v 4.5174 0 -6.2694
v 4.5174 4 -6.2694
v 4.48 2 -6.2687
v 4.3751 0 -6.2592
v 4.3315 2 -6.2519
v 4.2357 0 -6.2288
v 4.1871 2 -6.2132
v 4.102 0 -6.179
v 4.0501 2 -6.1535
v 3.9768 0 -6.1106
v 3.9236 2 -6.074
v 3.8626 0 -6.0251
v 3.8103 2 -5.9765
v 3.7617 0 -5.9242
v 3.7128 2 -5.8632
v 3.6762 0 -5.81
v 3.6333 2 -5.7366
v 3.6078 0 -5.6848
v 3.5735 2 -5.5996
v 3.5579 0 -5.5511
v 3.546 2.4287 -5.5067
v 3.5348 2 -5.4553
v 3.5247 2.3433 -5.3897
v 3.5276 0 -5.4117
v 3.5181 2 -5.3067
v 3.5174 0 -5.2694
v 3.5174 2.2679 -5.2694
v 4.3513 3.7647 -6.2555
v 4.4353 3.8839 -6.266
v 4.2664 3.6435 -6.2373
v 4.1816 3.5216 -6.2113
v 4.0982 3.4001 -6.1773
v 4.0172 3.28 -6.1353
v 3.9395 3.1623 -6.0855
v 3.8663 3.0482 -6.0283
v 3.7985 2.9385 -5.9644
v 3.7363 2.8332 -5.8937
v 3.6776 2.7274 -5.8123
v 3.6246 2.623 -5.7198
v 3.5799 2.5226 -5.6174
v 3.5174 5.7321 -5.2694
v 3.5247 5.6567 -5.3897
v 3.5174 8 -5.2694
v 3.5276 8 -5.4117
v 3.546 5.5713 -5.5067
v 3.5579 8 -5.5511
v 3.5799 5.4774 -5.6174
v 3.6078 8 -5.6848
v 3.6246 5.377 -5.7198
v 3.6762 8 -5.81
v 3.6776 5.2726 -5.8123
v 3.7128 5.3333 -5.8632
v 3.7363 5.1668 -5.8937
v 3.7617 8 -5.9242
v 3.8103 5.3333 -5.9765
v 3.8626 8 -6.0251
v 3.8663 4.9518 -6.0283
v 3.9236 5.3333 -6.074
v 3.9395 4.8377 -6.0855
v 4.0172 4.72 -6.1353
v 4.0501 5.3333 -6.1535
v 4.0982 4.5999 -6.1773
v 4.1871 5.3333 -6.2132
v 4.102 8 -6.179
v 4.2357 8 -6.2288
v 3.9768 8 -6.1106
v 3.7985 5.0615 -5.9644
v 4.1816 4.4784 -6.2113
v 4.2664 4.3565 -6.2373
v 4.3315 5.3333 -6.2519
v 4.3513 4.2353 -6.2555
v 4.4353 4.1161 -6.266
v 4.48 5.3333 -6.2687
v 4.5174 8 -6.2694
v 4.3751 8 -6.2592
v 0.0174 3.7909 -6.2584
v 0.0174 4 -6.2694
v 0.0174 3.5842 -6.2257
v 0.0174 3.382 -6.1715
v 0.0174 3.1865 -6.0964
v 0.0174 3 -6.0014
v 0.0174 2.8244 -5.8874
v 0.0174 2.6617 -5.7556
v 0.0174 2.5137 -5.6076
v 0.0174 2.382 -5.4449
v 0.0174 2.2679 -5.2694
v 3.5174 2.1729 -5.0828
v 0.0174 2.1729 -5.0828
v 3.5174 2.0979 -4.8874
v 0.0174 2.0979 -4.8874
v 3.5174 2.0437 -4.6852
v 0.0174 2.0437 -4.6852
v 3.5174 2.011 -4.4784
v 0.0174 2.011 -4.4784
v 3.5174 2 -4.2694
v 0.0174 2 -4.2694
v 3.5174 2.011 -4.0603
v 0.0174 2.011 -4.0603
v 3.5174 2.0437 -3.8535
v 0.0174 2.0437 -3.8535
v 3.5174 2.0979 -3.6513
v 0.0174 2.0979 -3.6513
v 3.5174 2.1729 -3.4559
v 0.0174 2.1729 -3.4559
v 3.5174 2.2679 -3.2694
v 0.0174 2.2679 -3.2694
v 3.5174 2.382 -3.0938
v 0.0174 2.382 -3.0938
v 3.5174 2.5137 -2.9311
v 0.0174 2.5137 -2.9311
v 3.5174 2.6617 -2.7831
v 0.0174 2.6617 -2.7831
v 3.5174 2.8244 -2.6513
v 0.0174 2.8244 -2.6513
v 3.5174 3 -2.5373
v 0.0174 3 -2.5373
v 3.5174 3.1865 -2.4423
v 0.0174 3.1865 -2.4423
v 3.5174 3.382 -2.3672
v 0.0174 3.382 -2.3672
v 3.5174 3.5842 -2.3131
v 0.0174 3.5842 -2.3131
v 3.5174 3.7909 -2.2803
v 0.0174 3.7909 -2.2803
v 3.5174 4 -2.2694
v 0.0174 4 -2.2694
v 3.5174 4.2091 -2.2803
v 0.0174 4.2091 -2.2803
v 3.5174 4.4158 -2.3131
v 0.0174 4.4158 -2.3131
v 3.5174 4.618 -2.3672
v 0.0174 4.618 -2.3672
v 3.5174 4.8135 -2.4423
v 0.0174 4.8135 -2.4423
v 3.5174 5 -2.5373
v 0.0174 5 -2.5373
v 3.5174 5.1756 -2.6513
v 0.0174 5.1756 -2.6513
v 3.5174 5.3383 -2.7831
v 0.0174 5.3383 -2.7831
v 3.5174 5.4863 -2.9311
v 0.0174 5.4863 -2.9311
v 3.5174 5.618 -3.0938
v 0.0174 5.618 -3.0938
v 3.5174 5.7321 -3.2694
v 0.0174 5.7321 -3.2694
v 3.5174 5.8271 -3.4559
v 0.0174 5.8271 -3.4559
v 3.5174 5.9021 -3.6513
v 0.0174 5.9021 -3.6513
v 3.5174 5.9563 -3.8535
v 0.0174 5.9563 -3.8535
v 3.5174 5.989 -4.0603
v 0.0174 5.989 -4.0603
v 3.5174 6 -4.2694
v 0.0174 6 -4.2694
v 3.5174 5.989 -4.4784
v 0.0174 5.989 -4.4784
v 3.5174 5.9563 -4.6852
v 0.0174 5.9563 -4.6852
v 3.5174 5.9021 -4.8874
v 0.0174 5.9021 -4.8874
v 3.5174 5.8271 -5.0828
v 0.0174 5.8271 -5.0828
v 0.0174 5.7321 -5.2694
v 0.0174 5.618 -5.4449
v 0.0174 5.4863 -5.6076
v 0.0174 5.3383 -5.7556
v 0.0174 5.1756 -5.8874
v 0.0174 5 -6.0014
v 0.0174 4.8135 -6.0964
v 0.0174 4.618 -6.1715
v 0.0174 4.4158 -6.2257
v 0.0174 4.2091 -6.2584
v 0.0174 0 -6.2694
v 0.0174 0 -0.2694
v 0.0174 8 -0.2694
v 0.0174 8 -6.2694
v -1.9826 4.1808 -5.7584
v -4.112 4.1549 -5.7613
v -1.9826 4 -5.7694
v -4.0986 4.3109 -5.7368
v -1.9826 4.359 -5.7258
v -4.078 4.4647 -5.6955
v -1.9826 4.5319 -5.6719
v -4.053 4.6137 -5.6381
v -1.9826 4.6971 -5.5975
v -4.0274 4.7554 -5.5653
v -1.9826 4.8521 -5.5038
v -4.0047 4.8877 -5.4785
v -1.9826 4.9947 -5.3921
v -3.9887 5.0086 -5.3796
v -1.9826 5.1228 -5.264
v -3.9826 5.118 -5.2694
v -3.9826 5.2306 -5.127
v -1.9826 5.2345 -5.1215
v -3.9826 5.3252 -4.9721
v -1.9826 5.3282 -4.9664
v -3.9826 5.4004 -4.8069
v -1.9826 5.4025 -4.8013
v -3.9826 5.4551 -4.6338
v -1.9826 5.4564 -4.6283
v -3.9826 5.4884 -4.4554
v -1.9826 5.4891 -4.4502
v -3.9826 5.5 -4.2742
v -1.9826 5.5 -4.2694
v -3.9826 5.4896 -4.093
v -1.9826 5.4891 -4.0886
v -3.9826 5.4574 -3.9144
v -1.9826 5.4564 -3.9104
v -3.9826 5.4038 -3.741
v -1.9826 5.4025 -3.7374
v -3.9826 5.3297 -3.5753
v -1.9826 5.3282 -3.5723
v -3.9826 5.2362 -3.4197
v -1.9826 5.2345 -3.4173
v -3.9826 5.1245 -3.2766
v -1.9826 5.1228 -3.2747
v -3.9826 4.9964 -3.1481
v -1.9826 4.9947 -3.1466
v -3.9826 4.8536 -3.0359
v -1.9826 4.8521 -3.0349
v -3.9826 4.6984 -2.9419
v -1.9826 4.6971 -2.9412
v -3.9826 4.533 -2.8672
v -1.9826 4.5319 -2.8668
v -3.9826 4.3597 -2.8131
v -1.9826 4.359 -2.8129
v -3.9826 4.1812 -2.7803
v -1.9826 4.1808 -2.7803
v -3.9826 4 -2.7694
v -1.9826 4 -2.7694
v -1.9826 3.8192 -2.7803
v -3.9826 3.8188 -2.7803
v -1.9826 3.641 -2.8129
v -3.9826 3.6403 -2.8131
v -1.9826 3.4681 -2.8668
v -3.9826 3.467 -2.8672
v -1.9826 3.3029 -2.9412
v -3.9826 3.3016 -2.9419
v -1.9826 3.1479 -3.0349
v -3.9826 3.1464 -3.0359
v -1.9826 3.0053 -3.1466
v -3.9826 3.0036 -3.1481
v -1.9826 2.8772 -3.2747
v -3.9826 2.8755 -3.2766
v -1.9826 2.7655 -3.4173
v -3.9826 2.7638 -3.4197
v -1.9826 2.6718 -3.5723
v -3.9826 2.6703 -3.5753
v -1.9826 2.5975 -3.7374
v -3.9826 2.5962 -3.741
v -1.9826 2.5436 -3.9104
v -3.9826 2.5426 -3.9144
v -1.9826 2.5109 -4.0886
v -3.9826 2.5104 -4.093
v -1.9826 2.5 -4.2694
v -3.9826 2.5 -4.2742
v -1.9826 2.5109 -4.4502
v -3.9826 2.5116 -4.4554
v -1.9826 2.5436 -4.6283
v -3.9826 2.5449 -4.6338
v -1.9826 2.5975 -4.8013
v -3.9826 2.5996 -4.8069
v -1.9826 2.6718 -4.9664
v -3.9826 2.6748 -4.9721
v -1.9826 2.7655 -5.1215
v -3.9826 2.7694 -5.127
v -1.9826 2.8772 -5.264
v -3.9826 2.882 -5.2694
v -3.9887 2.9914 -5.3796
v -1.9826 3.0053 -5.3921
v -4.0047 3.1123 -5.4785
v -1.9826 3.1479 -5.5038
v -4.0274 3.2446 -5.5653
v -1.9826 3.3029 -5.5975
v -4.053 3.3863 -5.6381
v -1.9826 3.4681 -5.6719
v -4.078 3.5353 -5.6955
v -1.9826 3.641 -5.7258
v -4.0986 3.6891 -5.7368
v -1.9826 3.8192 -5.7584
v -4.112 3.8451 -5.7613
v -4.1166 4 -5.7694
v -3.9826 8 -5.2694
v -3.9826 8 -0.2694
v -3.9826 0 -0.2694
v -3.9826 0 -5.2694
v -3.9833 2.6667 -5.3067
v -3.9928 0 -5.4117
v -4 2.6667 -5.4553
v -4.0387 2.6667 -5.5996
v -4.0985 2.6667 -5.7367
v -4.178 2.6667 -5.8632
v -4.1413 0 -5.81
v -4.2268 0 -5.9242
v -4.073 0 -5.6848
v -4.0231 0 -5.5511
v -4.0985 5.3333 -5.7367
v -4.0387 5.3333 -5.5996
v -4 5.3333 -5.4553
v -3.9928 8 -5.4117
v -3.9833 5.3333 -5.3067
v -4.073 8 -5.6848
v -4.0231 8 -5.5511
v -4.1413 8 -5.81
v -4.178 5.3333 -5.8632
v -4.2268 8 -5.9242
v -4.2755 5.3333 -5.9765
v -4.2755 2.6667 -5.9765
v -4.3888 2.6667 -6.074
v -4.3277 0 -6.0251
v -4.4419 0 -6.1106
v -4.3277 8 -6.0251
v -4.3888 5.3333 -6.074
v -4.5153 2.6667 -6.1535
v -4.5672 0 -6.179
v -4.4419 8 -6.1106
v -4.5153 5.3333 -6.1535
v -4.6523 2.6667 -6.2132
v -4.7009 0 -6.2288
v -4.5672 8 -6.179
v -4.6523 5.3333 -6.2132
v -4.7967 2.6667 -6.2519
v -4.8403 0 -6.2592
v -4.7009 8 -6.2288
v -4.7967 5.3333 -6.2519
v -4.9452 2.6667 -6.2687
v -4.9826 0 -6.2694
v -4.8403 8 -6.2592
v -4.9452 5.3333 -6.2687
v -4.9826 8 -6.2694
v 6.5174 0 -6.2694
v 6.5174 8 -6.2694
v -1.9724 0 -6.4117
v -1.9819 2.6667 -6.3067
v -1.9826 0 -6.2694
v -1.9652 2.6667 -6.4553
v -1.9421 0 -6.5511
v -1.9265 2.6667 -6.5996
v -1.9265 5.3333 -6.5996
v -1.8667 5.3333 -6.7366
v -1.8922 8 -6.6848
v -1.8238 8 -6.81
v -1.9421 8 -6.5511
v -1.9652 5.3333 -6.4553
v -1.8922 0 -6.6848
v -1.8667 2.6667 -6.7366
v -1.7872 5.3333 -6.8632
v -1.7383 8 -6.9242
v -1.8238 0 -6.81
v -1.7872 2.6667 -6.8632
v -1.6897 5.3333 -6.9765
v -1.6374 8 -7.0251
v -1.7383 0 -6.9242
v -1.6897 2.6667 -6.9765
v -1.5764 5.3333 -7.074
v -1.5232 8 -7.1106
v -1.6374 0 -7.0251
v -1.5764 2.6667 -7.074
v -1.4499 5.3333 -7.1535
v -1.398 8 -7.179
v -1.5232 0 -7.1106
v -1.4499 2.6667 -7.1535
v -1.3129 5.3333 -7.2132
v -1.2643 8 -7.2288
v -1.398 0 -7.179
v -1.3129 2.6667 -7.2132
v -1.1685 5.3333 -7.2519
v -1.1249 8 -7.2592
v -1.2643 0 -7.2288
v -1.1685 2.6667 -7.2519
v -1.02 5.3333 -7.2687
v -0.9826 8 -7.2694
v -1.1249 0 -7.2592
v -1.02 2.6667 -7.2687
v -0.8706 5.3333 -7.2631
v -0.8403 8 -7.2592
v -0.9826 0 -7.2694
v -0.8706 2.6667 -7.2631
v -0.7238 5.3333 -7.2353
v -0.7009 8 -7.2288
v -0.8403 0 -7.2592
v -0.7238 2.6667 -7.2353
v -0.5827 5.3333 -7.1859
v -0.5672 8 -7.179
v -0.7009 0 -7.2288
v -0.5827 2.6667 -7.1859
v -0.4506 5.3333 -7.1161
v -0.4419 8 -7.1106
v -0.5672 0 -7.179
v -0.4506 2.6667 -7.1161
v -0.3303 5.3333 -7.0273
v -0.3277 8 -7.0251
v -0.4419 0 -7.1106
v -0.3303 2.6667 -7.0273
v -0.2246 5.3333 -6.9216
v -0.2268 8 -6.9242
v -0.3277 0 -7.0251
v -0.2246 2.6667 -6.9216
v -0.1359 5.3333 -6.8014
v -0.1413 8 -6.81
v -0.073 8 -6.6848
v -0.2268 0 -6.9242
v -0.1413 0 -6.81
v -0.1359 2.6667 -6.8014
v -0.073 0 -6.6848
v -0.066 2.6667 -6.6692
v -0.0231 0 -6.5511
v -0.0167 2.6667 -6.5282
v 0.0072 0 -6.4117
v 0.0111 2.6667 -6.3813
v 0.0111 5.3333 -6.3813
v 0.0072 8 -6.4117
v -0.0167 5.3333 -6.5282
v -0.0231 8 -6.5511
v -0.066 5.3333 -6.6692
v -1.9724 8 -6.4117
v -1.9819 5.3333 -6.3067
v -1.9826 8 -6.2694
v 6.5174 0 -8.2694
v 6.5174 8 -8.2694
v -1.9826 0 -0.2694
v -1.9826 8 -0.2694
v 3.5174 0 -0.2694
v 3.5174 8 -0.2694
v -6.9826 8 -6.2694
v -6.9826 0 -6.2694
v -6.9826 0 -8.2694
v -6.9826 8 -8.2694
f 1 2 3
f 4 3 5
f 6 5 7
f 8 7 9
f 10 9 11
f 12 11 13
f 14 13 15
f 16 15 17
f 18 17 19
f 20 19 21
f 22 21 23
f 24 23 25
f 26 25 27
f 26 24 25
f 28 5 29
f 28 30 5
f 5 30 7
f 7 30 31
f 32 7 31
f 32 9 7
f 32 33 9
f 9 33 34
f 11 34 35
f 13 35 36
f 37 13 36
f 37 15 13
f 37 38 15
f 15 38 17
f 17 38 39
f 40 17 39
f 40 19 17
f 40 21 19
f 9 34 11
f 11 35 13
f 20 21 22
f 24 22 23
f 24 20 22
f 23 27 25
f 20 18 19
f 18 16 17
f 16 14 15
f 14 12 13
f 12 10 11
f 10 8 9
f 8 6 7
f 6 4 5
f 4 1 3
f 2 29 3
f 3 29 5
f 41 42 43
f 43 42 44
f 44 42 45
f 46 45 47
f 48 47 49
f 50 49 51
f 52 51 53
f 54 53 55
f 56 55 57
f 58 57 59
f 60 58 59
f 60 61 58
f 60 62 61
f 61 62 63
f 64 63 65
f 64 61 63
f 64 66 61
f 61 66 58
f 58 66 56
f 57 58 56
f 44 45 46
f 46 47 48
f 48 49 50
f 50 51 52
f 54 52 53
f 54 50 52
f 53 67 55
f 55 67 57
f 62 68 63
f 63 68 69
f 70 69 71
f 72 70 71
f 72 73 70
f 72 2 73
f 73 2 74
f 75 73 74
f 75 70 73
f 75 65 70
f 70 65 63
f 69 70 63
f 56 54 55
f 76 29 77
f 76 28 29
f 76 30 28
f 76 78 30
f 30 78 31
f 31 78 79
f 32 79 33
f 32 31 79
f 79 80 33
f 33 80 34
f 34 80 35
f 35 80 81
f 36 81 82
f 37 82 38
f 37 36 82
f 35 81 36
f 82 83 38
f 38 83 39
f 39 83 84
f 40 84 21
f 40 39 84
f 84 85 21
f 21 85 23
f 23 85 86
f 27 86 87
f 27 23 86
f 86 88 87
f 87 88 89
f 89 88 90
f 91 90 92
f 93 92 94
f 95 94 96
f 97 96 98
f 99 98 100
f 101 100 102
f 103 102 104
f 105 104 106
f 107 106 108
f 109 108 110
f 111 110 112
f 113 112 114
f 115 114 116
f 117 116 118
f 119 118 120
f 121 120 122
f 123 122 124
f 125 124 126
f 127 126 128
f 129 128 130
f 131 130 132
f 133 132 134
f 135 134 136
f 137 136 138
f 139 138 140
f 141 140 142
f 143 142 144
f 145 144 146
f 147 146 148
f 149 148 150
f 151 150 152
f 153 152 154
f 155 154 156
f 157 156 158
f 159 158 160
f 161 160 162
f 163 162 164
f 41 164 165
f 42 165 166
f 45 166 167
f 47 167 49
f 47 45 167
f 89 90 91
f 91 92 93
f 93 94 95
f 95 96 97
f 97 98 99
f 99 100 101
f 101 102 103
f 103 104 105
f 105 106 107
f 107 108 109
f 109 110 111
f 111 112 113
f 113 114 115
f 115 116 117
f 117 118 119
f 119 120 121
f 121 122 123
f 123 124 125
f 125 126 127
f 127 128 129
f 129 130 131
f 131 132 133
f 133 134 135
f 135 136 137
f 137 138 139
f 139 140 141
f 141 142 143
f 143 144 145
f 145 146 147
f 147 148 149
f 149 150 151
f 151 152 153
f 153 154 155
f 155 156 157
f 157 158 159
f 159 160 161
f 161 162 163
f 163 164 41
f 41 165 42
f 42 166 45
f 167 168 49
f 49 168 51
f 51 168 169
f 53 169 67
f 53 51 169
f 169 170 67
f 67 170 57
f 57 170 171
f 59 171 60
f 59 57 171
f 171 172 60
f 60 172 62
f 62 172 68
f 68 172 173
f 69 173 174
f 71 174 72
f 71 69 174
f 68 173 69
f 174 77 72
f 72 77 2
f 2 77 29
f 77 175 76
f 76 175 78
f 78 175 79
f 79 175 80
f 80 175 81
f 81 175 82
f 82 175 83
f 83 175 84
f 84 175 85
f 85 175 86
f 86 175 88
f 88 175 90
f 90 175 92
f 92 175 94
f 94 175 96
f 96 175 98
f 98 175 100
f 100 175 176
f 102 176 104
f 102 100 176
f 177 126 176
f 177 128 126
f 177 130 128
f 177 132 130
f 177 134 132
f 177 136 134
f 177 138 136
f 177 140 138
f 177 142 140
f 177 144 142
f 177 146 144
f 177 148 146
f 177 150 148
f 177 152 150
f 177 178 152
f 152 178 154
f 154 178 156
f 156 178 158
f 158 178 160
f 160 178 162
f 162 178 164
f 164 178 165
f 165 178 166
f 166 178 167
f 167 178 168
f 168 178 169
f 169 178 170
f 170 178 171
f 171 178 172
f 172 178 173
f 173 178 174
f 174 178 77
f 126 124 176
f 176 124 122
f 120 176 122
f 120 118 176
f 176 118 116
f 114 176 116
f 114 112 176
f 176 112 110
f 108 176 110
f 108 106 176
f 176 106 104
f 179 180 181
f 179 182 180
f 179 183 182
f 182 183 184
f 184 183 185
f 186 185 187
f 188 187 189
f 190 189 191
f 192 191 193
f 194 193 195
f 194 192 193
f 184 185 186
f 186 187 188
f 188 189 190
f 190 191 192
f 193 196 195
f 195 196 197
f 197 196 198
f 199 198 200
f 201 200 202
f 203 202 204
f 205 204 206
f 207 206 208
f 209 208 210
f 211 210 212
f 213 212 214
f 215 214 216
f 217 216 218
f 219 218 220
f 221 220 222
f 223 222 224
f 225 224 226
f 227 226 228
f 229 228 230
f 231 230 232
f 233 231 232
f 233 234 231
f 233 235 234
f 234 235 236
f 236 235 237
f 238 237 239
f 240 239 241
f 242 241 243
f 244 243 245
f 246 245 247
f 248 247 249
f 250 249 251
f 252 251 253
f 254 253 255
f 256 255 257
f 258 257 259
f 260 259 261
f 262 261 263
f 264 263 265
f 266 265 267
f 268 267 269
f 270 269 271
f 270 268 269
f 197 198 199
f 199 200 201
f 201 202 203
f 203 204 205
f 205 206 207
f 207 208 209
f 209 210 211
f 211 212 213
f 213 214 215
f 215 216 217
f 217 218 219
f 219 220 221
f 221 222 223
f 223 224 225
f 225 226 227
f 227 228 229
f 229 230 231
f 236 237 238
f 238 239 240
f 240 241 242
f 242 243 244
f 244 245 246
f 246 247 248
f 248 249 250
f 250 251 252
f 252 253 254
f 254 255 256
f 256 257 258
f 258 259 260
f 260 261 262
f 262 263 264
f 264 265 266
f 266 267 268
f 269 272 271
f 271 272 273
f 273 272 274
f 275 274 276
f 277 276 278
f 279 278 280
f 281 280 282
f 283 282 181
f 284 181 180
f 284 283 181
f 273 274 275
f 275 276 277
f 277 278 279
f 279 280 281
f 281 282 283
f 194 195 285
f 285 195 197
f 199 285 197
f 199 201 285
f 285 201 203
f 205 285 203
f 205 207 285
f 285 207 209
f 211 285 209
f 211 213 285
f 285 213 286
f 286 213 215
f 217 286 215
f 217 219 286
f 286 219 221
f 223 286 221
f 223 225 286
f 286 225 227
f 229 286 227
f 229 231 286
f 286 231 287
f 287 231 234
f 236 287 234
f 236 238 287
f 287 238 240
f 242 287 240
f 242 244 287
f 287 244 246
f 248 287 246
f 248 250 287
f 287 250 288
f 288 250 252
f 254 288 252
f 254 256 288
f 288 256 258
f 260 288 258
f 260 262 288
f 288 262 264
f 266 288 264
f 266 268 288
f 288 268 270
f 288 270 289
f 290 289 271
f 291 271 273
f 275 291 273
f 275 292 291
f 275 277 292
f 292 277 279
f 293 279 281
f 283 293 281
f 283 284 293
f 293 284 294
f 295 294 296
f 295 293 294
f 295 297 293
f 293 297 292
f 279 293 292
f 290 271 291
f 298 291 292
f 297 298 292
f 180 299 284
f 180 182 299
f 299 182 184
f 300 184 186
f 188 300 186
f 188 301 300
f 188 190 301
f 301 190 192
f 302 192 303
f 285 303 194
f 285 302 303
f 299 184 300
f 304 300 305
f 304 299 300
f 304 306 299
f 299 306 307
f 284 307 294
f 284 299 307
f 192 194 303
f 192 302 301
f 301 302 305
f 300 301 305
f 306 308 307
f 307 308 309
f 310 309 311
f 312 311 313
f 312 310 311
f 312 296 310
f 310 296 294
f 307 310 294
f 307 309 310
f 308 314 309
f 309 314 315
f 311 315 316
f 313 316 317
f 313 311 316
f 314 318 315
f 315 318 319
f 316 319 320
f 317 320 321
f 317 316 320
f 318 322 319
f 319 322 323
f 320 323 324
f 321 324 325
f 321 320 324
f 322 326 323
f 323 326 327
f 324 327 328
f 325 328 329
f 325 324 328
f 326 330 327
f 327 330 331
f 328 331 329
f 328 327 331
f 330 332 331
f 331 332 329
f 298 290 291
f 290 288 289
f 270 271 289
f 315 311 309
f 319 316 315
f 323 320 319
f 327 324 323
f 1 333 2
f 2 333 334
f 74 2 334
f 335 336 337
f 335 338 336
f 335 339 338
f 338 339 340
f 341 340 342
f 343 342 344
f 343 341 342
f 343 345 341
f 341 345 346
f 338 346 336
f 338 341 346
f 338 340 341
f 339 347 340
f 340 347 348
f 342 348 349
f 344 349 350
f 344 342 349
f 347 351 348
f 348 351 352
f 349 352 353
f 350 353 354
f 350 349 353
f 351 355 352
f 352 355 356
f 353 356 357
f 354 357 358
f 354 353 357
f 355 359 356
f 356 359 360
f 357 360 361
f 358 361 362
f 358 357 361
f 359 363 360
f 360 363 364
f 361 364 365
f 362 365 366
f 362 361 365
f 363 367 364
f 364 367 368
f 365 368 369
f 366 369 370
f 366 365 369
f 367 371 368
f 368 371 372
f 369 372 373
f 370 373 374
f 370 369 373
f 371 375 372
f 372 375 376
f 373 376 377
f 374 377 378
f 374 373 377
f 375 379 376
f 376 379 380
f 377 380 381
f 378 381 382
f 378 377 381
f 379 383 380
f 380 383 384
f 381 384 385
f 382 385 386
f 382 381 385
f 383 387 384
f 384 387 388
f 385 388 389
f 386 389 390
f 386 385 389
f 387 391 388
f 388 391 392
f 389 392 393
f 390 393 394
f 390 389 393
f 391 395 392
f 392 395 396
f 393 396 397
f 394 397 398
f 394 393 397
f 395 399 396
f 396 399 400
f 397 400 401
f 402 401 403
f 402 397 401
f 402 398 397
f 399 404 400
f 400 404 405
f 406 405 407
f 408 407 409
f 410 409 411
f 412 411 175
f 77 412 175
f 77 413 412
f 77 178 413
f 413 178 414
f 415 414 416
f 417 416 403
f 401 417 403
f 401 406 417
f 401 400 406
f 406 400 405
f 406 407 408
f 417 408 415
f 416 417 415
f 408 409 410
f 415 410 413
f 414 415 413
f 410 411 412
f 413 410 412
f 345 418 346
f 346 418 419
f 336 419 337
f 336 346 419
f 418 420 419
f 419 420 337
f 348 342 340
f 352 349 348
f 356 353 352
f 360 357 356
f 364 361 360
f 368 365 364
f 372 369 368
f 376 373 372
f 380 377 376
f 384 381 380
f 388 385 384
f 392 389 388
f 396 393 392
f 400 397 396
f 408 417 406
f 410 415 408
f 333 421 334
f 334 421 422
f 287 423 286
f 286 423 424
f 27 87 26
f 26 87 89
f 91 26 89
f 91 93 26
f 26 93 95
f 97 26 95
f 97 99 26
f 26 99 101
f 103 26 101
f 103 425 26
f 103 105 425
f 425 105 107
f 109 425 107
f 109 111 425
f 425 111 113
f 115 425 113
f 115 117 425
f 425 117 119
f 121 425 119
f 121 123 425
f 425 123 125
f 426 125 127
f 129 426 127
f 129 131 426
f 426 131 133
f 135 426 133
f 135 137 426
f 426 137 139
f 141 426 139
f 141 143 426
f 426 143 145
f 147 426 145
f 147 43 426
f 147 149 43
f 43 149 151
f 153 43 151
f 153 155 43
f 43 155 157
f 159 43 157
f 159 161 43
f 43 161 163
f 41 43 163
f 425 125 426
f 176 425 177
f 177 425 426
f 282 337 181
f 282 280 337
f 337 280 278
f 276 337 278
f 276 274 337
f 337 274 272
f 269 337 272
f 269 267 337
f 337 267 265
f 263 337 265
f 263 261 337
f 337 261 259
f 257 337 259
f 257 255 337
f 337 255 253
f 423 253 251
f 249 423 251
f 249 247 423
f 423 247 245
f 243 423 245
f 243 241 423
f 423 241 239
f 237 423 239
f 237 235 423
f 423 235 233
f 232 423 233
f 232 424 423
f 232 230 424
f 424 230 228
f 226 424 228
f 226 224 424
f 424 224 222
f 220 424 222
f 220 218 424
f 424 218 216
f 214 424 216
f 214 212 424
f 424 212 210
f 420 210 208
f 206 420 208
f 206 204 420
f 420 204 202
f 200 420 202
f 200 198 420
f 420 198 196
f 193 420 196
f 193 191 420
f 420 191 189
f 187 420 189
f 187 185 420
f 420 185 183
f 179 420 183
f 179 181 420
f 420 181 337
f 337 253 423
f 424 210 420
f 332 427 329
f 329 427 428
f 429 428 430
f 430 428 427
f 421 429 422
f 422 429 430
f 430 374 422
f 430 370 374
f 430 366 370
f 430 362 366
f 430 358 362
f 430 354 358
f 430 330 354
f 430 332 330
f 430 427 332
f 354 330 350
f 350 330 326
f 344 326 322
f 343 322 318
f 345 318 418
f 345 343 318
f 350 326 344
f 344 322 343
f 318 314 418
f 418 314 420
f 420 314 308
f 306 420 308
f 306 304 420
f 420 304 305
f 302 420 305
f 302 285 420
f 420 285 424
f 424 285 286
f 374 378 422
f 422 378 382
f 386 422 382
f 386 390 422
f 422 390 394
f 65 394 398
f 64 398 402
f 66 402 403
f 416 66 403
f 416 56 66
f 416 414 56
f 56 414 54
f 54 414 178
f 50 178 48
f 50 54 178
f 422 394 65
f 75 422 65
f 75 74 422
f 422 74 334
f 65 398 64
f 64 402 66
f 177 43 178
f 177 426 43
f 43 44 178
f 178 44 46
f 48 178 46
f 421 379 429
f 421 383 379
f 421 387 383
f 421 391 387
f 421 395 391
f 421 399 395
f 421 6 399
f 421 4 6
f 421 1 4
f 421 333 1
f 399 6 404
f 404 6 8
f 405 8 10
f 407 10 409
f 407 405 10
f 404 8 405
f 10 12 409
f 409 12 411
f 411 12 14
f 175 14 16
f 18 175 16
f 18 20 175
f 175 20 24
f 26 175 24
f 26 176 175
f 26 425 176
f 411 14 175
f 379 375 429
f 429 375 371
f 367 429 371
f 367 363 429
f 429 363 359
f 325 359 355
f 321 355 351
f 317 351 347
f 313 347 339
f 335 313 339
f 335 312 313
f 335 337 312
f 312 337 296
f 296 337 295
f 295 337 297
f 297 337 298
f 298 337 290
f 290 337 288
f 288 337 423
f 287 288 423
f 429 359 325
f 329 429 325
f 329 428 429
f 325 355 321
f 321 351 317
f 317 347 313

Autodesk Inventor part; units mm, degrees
ref_plane "YZ Plane" through (0, 0, 0) normal (1, 0, 0) x (0, 1, 0)
ref_plane "XZ Plane" through (0, 0, 0) normal (0, 1, 0) x (-1, 0, 0)
ref_plane "XY Plane" through (0, 0, 0) normal (0, 0, 1) x (1, 0, 0)
sketch "Sketch1" plane through (0, 0, 0) normal (0, 1, 0) x (-1, 0, 0)
  line L0 (1.9826, -0.2694) -> (1.9826, -7.2694)
  line L1 (1.9826, -7.2694) -> (-0.0174, -7.2694)
  line L2 (-0.0174, -7.2694) -> (-0.0174, -0.2694)
  line L3 (-0.0174, -0.2694) -> (-3.5174, -0.2694)
  line L4 (-3.5174, -0.2694) -> (-3.5174, -8.2694)
  line L5 (-3.5174, -8.2694) -> (3.9826, -8.2694)
  line L6 (3.9826, -8.2694) -> (3.9826, -0.2694)
  line L7 (3.9826, -0.2694) -> (1.9826, -0.2694)
  line L8 (-3.5174, -8.2694) -> (-7.5174, -8.2694)
  line L9 (-7.5174, -8.2694) -> (-7.5174, -4.2694)
  line L10 (-7.5174, -4.2694) -> (-3.5174, -4.2694)
  line L11 (-3.5174, -4.2694) -> (-3.5174, -8.2694)
  line L12 (3.9826, -8.2694) -> (6.9826, -8.2694)
  line L13 (6.9826, -8.2694) -> (6.9826, -6.2694)
  line L14 (6.9826, -6.2694) -> (3.9826, -6.2694)
  line L15 (3.9826, -6.2694) -> (3.9826, -8.2694)
  line L16 (-3.5174, -8.2694) -> (-6.5174, -8.2694)
  line L17 (-6.5174, -8.2694) -> (-6.5174, -6.2694)
  line L18 (-6.5174, -6.2694) -> (-3.5174, -6.2694)
  line L19 (-3.5174, -6.2694) -> (-3.5174, -8.2694)
  point P0 (0, 0)
  dimension "d0" = 2
  dimension "d1" = 3.5
  dimension "d2" = 2
  dimension "d5" = 1
  dimension "d6" = 7
  dimension "d7" = 4
  dimension "d8" = 4
  dimension "d18" = 3
  dimension "d19" = 3
  dimension "d24" = 2
extrude "Extrusion1" add sketch "Sketch1" along normal blind 8 contours L7 L6 L5 L4 L3 L2 L1 L0 | L14 L13 L12 L6 | L8 L17 L18 L4
sketch "Sketch2" plane through (7.5174, 0, -8.2694) normal (0, 0, -1) x (-1, 0, 0)
  circle A0 centre (4, 4) radius 2.05
  line L0 (0, 0) -> (0, 8) projected
  line L1 (1, 8) -> (14.5, 8) projected
  line L2 (7.5, 0) -> (7.5, 8) projected
  point P0 (7.5174, 0)
  point P1 (12, 8)
  dimension "d11" = 4.1
  dimension "d12" = 4
  dimension "d13" = 4
  dimension "d17" = 3.5
extrude "Extrusion2" [suppressed]
fillet "Fillet1" radius 1 4 edges at (-1.9826, 4, -7.2694) (0.0174, 4, -7.2694) (3.5174, 4, -6.2694) (-3.9826, 4, -6.2694)
sketch "Sketch3" plane through (3.5174, 0, -0.2694) normal (1, 0, 0) x (0, 0, -1)
  circle A0 centre (4, 4) radius 2
  circle A1 centre (4, 4) radius 1.5
  line L0 (8, 0) -> (8, 8) projected
  line L1 (0, 0) -> (5, 0) projected
  point P0 (-0.2694, 0)
  dimension "d20" = 4
  dimension "d21" = 3
  dimension "d22" = 4
  dimension "d23" = 4
extrude "Extrusion3" cut sketch "Sketch3" against normal blind 10 contours A1
extrude "Extrusion4" cut sketch "Sketch3" against normal blind 3.5
extrude "Extrusion5" cut sketch "Sketch3" along normal blind 3.5 contours A0 | A1
properties part number "ethernet card support"
